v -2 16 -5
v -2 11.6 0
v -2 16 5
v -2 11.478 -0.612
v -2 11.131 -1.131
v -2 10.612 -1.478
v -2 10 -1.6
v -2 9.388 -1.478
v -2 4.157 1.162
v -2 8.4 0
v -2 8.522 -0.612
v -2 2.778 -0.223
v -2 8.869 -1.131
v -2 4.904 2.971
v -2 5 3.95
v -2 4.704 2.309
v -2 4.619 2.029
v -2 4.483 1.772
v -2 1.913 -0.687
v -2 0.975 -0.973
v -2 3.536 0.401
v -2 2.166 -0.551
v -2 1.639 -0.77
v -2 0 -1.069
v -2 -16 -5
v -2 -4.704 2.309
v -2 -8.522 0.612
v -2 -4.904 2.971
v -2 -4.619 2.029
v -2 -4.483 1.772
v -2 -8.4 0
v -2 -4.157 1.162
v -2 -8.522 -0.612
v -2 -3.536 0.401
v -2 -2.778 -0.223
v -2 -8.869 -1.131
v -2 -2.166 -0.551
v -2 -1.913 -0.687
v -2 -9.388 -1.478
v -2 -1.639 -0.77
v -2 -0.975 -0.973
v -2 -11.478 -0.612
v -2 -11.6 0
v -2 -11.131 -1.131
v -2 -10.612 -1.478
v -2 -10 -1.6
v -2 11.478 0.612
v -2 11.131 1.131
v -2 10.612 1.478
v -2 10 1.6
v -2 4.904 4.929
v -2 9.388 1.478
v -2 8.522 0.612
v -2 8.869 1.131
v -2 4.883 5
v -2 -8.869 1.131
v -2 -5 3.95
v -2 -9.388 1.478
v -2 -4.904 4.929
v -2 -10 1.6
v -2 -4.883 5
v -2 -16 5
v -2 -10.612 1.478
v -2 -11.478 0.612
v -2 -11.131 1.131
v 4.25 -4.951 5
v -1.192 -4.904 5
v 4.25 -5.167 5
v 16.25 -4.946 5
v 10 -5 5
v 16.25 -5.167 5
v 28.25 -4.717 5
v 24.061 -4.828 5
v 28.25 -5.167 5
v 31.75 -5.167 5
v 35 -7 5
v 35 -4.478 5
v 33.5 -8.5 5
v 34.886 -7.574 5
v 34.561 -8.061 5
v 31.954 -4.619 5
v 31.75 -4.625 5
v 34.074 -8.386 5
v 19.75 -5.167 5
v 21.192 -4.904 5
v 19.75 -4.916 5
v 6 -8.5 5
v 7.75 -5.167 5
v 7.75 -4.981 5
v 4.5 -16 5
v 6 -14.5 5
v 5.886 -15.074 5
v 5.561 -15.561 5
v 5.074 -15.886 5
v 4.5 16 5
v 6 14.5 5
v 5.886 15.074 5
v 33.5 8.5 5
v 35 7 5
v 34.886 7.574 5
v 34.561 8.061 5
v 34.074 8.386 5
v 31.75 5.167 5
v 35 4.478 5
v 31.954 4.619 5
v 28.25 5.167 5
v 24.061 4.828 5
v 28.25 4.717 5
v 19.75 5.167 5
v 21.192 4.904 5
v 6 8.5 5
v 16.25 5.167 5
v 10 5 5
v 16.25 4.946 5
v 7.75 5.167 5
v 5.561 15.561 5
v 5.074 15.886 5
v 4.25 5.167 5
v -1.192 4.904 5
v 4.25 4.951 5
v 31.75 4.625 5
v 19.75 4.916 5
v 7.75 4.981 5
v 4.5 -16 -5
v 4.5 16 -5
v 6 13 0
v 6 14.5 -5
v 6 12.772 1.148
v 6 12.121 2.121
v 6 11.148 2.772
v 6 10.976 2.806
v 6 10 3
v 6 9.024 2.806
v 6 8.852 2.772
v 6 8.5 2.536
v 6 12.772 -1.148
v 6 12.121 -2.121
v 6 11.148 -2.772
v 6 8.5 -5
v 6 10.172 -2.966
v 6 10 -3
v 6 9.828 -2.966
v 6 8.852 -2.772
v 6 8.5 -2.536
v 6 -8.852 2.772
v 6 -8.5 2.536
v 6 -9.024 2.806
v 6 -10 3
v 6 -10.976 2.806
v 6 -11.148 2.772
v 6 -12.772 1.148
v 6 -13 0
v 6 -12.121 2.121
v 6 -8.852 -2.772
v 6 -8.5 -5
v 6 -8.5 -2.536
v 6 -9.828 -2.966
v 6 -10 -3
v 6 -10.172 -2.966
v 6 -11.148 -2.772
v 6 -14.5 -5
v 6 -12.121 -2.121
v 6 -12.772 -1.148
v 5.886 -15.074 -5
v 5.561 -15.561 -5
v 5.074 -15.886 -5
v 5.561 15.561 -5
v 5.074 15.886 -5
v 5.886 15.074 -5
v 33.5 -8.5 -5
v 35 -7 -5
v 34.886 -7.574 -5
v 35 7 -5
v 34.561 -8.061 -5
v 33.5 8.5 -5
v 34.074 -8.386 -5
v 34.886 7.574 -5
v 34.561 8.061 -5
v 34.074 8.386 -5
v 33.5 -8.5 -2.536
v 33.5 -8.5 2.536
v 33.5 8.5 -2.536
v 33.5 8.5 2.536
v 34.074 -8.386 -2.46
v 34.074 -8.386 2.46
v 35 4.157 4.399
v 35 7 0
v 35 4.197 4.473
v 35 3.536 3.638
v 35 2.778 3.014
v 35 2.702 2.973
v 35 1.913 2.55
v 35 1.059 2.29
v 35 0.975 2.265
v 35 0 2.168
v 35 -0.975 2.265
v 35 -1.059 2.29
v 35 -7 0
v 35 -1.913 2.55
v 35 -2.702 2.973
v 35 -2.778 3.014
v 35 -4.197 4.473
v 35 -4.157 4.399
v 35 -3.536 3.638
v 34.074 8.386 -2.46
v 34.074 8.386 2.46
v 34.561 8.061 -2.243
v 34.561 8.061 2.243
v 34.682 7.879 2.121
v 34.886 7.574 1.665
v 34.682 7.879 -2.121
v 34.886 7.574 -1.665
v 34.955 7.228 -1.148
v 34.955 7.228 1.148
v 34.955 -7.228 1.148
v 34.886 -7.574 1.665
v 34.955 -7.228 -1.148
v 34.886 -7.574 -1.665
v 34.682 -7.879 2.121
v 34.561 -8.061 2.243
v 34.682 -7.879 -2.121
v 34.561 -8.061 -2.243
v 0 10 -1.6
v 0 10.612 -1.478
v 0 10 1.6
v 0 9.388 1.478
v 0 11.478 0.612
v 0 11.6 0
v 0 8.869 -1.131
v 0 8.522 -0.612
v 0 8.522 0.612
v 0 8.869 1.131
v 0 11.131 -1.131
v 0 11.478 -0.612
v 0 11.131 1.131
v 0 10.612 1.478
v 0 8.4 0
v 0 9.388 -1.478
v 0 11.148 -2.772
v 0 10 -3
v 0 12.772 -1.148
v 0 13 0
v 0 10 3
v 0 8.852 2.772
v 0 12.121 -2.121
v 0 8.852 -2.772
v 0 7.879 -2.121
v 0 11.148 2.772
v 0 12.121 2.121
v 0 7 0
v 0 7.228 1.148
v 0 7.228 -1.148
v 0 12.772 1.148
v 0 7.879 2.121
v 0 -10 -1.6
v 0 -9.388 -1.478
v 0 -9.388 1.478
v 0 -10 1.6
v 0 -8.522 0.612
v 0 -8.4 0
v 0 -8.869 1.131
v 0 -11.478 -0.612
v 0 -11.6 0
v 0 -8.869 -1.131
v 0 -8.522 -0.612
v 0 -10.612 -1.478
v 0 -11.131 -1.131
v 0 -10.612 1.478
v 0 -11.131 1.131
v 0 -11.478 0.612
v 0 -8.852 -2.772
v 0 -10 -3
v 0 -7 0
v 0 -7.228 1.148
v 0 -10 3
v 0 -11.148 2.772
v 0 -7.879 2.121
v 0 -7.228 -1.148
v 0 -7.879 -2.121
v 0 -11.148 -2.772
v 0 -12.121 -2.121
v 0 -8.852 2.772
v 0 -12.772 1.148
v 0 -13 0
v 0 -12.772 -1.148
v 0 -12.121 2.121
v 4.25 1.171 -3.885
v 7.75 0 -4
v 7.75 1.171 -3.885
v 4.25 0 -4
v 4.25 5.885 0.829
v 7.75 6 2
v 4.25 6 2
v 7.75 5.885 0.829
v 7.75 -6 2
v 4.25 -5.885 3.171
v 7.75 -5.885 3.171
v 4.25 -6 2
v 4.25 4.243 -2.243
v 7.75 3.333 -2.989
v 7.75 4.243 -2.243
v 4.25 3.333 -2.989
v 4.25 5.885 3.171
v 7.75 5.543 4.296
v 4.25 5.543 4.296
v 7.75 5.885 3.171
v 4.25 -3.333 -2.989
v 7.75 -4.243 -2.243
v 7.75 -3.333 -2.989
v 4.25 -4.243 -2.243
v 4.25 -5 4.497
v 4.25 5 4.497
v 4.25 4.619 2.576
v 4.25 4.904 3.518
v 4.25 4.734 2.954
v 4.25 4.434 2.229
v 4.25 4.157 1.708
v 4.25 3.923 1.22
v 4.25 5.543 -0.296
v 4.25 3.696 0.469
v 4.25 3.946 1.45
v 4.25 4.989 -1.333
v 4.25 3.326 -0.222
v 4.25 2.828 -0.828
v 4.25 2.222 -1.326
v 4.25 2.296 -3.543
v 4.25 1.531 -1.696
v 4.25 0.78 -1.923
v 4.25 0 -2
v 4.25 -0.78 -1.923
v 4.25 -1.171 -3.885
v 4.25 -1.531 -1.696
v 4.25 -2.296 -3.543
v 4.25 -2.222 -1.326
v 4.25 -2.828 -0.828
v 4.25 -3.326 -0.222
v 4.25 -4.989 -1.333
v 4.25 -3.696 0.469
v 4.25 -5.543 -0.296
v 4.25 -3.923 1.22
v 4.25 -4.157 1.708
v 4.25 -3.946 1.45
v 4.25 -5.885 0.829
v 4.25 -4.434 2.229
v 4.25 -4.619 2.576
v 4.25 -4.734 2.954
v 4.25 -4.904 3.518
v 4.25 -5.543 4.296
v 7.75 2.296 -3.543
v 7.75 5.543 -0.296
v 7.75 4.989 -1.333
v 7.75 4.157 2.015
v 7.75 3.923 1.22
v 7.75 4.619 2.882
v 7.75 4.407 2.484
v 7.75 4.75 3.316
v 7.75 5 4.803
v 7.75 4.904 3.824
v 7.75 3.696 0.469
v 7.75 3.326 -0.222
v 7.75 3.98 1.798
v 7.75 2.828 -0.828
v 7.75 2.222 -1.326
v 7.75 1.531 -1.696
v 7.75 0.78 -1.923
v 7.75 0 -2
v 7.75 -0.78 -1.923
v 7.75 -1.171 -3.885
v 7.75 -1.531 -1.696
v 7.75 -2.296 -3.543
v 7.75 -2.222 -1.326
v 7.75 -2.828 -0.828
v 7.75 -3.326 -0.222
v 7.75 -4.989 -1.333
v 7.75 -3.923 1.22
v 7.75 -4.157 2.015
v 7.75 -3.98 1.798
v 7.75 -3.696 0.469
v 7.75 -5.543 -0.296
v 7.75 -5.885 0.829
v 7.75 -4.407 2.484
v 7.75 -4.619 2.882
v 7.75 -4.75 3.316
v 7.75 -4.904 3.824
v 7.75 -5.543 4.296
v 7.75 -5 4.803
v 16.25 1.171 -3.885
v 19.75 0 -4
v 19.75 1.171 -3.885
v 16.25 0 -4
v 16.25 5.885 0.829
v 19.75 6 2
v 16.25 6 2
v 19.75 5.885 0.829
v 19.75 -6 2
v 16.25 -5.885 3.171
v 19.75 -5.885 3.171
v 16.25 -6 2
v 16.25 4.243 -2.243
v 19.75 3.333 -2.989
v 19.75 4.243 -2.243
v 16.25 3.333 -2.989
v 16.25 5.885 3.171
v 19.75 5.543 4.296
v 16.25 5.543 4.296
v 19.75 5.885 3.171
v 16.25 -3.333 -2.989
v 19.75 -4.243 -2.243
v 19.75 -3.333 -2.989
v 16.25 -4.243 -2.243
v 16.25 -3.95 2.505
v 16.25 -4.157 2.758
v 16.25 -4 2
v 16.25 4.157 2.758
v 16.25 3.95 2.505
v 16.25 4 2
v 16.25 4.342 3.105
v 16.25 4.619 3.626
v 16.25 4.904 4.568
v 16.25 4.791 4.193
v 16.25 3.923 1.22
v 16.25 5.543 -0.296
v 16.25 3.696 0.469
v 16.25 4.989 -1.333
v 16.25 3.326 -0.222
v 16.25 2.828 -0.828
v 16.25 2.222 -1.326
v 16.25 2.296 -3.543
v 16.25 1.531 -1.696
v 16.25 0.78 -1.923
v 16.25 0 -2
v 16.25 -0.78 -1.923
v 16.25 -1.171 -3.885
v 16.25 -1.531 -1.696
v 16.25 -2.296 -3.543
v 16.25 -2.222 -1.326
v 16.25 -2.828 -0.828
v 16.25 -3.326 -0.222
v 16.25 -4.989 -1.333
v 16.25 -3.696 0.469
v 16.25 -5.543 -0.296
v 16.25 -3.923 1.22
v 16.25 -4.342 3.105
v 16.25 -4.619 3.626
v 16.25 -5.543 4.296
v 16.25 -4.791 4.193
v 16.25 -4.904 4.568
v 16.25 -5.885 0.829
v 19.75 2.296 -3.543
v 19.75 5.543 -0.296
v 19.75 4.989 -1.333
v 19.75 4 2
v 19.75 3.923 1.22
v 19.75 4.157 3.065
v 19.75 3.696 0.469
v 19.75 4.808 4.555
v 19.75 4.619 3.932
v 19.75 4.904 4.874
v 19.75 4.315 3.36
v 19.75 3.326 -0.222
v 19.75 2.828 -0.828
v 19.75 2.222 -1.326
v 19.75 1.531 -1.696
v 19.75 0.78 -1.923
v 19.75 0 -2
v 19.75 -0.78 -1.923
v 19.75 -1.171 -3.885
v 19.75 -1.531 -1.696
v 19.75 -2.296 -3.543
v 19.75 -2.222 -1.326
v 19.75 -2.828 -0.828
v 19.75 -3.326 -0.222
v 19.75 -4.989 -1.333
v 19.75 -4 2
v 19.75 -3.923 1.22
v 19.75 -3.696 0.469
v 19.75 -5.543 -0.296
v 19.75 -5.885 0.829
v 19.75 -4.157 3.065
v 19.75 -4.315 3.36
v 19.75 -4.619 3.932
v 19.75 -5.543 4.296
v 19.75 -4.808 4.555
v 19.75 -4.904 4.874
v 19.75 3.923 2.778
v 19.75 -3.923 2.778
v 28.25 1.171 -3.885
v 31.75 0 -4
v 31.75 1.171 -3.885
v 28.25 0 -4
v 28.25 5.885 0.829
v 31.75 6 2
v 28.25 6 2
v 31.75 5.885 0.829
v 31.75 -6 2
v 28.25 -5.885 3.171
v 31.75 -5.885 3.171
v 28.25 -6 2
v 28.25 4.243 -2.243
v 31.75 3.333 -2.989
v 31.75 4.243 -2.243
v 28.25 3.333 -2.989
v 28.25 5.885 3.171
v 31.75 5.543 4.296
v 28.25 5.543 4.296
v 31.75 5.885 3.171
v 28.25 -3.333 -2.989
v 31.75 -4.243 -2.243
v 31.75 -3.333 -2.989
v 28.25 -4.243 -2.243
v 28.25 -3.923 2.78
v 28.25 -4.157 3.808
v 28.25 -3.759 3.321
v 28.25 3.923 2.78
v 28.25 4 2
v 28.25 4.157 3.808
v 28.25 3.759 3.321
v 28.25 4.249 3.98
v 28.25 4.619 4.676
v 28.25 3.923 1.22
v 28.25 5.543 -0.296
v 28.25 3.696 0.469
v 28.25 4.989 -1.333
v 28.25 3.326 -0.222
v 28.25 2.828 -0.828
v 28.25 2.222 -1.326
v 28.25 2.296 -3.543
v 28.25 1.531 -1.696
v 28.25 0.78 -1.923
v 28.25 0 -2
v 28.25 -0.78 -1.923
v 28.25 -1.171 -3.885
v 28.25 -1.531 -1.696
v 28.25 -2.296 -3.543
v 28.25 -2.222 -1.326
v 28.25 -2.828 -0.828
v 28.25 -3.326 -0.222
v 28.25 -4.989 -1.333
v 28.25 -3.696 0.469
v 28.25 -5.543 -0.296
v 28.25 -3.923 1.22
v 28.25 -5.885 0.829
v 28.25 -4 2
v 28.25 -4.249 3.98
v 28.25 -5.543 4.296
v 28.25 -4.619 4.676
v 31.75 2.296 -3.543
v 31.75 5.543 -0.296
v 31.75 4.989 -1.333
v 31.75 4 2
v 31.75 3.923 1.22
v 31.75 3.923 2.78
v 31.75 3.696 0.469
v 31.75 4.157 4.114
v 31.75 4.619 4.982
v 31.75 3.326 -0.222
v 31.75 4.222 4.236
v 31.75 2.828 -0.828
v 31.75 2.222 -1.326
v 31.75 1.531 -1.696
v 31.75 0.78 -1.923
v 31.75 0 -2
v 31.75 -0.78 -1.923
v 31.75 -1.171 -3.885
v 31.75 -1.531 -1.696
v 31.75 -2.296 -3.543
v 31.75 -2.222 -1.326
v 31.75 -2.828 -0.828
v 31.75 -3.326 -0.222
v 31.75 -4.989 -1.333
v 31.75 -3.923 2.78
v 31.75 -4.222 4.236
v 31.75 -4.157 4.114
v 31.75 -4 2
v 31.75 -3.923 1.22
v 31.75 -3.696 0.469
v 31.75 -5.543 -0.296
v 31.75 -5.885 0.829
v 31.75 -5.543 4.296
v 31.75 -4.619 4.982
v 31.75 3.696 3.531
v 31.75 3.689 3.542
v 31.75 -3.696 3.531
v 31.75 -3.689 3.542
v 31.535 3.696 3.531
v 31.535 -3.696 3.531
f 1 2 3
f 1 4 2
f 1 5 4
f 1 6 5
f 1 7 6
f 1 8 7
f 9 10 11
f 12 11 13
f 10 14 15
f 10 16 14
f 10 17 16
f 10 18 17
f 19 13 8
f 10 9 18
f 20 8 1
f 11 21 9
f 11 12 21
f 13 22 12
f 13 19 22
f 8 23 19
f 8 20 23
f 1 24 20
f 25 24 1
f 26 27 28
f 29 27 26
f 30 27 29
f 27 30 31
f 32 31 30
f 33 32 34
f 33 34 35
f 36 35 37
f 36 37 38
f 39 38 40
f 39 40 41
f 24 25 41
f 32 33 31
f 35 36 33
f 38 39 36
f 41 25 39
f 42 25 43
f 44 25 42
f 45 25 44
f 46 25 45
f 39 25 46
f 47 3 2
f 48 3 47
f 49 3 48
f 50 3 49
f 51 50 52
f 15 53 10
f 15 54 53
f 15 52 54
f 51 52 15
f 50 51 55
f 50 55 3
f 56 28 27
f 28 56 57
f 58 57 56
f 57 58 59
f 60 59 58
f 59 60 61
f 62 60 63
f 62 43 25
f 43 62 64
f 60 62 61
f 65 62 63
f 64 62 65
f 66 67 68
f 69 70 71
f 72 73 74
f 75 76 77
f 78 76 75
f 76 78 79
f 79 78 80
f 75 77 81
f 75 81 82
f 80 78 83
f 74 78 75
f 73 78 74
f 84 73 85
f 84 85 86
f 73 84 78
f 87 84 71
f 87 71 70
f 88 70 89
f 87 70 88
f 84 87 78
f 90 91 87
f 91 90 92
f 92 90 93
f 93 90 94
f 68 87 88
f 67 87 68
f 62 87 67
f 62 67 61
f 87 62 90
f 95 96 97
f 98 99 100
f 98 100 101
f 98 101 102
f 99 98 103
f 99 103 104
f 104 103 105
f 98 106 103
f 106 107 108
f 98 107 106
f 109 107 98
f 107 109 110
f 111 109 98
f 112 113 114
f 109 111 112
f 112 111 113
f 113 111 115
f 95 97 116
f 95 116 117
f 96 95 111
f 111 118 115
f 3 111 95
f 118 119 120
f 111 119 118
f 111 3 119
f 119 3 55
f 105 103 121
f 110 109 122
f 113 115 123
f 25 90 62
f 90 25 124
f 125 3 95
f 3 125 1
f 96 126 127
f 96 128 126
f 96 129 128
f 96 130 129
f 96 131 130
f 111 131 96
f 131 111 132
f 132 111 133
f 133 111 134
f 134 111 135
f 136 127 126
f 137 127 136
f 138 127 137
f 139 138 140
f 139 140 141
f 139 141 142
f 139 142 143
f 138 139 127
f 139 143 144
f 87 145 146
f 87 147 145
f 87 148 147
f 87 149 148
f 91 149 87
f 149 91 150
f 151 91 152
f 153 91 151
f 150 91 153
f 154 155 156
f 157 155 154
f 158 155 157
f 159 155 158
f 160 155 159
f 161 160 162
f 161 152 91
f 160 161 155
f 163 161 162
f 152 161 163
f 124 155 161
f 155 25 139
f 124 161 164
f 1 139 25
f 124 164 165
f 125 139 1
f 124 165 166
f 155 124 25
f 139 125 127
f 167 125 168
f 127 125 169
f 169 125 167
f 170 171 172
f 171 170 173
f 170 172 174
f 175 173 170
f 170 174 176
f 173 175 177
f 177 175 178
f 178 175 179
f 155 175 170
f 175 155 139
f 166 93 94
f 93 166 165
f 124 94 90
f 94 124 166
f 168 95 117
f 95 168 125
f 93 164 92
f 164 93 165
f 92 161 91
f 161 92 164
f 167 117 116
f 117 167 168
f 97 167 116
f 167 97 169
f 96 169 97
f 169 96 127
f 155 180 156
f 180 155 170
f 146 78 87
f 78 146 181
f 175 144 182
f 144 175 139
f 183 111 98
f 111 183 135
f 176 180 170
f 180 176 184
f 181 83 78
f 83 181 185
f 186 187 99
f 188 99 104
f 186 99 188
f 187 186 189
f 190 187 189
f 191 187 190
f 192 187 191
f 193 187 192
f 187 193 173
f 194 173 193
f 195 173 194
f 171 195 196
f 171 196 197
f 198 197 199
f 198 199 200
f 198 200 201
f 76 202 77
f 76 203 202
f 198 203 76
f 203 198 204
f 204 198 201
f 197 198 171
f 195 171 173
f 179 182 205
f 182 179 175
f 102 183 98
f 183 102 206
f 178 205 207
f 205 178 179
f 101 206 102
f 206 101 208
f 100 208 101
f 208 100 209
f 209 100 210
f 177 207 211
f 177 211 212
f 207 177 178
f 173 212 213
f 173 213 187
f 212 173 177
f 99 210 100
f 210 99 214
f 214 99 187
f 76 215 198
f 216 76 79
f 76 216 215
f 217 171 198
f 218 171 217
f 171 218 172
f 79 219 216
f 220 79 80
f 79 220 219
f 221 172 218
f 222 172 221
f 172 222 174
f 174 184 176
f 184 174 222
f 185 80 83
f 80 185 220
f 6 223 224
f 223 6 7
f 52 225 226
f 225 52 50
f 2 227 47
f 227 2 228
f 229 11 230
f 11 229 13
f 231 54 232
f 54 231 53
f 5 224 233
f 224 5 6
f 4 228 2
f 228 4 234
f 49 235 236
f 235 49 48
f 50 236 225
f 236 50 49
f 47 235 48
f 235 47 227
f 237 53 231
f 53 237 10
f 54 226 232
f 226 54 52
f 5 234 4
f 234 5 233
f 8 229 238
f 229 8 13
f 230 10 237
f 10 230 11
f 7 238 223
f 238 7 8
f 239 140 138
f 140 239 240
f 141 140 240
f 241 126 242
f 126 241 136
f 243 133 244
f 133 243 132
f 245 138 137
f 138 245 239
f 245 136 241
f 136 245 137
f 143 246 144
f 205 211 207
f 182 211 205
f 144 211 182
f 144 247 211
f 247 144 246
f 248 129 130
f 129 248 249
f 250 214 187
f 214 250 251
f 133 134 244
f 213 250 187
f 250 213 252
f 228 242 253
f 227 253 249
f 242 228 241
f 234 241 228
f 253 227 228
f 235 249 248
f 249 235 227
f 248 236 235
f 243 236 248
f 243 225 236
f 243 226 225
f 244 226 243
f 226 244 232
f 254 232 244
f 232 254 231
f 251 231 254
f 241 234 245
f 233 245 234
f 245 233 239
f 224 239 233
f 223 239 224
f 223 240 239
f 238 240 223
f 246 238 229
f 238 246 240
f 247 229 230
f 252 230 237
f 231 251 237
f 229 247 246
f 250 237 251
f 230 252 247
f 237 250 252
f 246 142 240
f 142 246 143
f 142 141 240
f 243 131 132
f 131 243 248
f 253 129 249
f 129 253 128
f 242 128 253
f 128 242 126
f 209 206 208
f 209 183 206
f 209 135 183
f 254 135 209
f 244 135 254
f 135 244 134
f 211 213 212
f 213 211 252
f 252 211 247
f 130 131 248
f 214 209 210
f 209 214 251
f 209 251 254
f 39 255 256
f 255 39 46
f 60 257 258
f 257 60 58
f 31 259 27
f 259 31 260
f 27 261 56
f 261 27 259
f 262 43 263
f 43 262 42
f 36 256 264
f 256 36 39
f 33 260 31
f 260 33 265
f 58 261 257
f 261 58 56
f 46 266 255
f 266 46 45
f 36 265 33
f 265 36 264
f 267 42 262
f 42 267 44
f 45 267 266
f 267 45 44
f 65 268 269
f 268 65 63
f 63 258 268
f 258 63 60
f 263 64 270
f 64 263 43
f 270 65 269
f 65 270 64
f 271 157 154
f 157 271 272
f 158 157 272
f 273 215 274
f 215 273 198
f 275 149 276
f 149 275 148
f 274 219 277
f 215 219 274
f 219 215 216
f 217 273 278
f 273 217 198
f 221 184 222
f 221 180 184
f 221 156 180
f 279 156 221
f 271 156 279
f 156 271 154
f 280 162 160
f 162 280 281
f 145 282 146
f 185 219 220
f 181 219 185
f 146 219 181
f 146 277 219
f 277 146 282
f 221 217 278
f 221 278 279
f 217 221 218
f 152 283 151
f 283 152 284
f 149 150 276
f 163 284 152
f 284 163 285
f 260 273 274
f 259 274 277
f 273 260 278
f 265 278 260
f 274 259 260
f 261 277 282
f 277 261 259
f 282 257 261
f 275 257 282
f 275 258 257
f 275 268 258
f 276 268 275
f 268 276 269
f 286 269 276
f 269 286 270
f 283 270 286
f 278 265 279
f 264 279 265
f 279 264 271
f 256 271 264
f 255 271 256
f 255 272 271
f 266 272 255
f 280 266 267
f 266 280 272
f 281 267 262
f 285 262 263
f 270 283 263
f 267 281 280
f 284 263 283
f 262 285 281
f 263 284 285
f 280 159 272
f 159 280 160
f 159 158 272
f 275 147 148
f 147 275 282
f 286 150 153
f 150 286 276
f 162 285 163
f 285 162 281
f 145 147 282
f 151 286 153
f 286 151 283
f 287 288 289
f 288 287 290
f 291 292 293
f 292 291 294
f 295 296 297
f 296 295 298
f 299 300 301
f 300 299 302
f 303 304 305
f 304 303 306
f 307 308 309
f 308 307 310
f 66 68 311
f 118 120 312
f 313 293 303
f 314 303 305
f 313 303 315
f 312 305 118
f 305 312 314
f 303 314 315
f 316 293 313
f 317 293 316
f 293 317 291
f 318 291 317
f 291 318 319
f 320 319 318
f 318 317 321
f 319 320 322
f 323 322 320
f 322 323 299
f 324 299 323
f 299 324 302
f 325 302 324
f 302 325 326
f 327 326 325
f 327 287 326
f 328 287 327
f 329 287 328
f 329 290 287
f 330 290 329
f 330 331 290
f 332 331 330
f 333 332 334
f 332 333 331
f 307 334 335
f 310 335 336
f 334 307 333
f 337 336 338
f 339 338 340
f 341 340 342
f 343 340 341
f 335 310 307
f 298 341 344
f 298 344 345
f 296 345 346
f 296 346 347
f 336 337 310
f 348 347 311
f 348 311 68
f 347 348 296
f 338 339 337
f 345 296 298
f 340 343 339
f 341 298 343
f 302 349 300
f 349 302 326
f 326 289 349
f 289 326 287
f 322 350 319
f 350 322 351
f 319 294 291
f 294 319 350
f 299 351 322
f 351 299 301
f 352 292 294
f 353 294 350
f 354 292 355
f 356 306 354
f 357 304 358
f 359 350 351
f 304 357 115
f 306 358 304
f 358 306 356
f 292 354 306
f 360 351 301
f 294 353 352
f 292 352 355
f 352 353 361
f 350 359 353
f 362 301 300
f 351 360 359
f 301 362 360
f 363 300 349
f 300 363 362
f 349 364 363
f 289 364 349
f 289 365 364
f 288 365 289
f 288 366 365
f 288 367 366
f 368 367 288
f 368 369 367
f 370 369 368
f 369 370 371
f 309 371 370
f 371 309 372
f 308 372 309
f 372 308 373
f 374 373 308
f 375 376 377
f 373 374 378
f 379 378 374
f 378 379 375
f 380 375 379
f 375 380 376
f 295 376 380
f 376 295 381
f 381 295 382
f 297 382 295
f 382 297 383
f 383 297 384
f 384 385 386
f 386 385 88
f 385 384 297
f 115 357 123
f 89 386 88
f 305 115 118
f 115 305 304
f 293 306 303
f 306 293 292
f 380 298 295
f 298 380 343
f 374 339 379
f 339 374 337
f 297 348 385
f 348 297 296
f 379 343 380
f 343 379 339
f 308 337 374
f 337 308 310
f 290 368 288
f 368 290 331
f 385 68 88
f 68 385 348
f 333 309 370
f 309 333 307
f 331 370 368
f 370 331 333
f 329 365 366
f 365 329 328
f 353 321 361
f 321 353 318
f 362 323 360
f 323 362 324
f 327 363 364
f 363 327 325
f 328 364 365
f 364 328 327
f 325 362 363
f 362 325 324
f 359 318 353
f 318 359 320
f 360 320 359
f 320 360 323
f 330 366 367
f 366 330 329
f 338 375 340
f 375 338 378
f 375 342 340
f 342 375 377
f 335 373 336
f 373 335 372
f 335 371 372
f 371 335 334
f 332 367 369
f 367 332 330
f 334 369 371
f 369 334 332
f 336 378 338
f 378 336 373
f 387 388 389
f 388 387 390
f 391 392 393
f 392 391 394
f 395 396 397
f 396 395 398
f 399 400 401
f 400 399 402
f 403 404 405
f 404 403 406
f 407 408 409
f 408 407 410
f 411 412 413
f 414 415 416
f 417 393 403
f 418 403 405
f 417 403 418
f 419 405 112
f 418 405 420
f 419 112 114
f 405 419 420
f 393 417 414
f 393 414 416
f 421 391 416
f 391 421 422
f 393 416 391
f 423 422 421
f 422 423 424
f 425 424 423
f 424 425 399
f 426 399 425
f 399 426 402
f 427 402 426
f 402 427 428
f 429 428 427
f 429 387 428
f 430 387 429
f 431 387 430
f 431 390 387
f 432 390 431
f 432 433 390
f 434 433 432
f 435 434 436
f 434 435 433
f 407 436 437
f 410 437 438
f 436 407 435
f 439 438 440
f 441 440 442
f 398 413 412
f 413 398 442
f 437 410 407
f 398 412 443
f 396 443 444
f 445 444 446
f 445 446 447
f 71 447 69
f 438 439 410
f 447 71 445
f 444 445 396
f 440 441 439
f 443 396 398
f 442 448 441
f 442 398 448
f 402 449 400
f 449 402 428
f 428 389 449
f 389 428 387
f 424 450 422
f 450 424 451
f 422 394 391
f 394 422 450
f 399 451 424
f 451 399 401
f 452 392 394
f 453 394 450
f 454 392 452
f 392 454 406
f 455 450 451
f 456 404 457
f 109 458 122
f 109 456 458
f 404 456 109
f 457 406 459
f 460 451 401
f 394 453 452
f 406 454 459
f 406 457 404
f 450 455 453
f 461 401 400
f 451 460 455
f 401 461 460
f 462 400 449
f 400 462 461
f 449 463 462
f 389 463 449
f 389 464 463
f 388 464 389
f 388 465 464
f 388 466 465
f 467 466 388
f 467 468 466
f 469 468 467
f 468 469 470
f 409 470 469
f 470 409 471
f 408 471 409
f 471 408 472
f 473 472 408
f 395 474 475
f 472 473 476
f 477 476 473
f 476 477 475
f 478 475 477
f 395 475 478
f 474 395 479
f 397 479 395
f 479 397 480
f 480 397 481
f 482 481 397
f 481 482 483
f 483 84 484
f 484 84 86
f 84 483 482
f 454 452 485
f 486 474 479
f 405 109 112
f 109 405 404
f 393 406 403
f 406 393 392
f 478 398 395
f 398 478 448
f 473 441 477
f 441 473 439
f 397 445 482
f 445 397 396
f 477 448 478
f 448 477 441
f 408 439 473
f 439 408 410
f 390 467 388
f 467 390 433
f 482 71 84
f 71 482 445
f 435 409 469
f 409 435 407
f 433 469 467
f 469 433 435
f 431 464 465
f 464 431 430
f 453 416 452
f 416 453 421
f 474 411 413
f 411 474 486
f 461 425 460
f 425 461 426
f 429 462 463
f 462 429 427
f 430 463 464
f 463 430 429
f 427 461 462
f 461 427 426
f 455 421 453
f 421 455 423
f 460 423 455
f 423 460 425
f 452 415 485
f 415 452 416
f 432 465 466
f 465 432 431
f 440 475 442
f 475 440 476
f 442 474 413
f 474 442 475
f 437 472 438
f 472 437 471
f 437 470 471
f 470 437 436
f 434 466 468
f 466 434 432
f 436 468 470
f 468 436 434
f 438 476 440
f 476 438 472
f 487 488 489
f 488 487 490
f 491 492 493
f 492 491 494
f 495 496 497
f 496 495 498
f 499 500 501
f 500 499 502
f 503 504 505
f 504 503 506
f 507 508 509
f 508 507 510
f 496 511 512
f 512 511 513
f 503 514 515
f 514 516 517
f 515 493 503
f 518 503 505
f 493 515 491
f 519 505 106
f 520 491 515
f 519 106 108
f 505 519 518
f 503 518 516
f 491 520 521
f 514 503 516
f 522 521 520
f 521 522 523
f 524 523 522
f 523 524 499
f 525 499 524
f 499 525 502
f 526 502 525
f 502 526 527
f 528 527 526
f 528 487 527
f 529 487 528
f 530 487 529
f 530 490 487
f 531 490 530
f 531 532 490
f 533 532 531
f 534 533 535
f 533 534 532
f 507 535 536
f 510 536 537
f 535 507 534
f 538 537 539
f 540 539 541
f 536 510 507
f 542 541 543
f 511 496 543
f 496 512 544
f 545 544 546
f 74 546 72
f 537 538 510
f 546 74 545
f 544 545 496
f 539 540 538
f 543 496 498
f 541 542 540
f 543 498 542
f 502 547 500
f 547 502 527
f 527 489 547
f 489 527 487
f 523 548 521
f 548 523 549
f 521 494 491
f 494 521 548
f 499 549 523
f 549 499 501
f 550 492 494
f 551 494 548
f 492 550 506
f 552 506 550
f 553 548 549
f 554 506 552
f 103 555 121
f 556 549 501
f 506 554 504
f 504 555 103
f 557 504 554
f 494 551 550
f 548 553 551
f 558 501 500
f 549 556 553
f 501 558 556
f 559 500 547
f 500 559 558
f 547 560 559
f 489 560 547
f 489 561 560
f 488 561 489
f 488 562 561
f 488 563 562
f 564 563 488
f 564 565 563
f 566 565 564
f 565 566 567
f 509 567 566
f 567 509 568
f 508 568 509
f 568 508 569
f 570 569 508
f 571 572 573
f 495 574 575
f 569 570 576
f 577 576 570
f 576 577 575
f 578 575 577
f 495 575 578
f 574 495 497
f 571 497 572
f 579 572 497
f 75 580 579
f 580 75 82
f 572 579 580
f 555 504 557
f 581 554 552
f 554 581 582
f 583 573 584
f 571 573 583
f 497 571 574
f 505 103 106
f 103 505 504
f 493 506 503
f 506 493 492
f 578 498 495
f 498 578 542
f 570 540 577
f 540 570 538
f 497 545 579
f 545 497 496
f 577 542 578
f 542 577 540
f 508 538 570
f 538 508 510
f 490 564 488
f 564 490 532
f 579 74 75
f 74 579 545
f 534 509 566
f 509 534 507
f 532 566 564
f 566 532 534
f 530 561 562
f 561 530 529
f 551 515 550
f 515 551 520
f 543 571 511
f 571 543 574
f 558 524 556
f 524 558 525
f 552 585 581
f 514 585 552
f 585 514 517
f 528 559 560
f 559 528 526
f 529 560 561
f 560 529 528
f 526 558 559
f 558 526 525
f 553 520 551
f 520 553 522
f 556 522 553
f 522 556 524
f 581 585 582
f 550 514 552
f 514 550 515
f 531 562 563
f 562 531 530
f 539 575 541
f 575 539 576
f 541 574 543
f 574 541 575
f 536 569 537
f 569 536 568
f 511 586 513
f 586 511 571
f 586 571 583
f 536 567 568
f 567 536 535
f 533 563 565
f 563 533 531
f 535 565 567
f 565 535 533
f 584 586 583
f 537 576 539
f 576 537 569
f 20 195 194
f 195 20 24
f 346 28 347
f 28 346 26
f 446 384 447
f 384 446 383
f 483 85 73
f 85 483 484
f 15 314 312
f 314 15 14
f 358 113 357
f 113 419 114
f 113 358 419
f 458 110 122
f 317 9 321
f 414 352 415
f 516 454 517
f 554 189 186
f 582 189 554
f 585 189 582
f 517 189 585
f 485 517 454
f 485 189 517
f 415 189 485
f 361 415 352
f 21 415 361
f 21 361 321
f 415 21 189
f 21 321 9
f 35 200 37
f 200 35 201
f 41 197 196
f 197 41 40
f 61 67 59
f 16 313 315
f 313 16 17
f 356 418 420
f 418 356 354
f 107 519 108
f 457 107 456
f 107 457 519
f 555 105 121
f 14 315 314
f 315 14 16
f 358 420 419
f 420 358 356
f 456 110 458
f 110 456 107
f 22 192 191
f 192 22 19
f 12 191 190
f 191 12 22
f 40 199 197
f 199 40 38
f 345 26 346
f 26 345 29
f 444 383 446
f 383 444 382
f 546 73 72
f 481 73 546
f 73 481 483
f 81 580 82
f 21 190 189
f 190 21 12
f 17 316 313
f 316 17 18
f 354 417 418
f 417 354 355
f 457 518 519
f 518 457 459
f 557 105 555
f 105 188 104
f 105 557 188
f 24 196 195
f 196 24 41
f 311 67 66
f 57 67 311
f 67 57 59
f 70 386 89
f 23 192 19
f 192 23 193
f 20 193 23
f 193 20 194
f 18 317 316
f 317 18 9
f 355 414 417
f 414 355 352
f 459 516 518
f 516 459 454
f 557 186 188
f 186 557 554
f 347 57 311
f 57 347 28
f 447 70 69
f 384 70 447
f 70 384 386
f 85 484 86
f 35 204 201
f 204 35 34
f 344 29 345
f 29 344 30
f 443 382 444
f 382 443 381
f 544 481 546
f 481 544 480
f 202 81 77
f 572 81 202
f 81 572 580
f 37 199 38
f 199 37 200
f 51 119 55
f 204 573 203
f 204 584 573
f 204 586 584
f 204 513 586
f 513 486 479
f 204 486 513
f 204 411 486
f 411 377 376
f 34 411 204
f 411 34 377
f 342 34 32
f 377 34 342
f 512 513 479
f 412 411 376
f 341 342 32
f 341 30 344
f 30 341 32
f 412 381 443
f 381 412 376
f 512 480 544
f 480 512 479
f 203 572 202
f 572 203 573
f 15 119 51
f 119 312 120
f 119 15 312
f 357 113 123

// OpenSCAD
// file: ../configuration.scad
// Vyska vrstvy pro tisknuti dilu [mm]
layer_height = 0.25; //Slic3r->Print Settings->Layers and perimeters->Layer height

// Rezerva prumeru hlavy sroubu [mm]
spare = 1;
// Prumer hlavy M6 sroubu (pricte se rezerva) [mm]
M6_head_diameter = 10.6+spare;
//M6_head_diameter = 12+spare;

// Vyska hlavy M6 sroubu (dulezite pro zapusteni hlavy sroubu do plastu) [mm]
M6_head_height = 3.6;
//M6_head_height = 4.5;

//Prumery sroubu a tyci
M8_smooth_rod_diameter = 8.1;
M8_smooth_rod_diameter_catch = 8.2;
M6_diameter = 6.2;
M6_diamater_horizontal = 6.5;
M3_diameter = 3.2;
M3_diameter_horizontal = 3.2;

//Prumery matic
M3_nut_diameter = 6.8;
M3_nut_diameter_horizontal = 6.8;

//ALU profile parameters
ALU_cut_width = 7.9;
ALU_cut_width_horizontal = 7.9;

// Delka motoru (ovlivni dily pro osy Z a Y)
//SX17-1003LQFE (doporuceno hlavne na osu Z)
//motor_length = 29.5;
//SX17-1003 (doporuceno hlavne na osu Z)
motor_length = 34;
//SX17-1005
//motor_length = 40;
//SX17-0905 - zde je jiz problem s velkou vyskou motoru na ose Z - musi se upravit endstop-holder
//motor_length = 48;

// Sirka vytlacovaneho materialu [mm]
extrusion_width = 0.66; //Slic3r->Print Settings->Advanced->Default extrusion width

/// Vyberte typ remenu ******************************************************

// GT2 
//belt_tooth_distance = 2;
//belt_tooth_ratio = 0.5;

// T2.5
belt_tooth_distance = 2.5;
belt_tooth_ratio = 0.68;
// main file
// RebeliX
//
// x_carrige_cable_holder
// GNU GPL v3
// Martin Neruda <neruda@reprap4u.cz>
// http://www.reprap4u.cz

include <../configuration.scad>
include <inc/functions.scad>

length = 35;

module holder_base()
{
  translate([2,0,0]) rounded_box(8,32,10,3,0,0,1,1);
  translate([length/2,0,0]) rounded_box(length,17,10,3,0,0,1,1);
}

module holder_cuts()
{
  // Otvory pro souby
  for(i=[10,-10])
  {
    translate([0,i,0]) rotate([0,90,0]) cylinder(r=3.2/2, h=20, $fn=16,center=true);
    translate([6/2 + 40/2 - 3,i,0]) rotate([0,90,0]) cylinder(r=6/2, h=40, $fn=16,center=true);
  }
  
  // Vyrez pro kabely
  translate([10,0,10/2]) rotate([0,90 - 5,0]) cylinder(r=10/2, h=60, $fn=32,center=true);
  
  // Otvory pro zip pasky
  for(i=[6:12:30])
  {
    translate([i,0,2]) rotate([0,90 - 0,0]) zip_paska(6);
  }
}

module x_carrige_cable_holder()
{
  difference()
  {
    holder_base();
    holder_cuts();
  }
}

x_carrige_cable_holder();
